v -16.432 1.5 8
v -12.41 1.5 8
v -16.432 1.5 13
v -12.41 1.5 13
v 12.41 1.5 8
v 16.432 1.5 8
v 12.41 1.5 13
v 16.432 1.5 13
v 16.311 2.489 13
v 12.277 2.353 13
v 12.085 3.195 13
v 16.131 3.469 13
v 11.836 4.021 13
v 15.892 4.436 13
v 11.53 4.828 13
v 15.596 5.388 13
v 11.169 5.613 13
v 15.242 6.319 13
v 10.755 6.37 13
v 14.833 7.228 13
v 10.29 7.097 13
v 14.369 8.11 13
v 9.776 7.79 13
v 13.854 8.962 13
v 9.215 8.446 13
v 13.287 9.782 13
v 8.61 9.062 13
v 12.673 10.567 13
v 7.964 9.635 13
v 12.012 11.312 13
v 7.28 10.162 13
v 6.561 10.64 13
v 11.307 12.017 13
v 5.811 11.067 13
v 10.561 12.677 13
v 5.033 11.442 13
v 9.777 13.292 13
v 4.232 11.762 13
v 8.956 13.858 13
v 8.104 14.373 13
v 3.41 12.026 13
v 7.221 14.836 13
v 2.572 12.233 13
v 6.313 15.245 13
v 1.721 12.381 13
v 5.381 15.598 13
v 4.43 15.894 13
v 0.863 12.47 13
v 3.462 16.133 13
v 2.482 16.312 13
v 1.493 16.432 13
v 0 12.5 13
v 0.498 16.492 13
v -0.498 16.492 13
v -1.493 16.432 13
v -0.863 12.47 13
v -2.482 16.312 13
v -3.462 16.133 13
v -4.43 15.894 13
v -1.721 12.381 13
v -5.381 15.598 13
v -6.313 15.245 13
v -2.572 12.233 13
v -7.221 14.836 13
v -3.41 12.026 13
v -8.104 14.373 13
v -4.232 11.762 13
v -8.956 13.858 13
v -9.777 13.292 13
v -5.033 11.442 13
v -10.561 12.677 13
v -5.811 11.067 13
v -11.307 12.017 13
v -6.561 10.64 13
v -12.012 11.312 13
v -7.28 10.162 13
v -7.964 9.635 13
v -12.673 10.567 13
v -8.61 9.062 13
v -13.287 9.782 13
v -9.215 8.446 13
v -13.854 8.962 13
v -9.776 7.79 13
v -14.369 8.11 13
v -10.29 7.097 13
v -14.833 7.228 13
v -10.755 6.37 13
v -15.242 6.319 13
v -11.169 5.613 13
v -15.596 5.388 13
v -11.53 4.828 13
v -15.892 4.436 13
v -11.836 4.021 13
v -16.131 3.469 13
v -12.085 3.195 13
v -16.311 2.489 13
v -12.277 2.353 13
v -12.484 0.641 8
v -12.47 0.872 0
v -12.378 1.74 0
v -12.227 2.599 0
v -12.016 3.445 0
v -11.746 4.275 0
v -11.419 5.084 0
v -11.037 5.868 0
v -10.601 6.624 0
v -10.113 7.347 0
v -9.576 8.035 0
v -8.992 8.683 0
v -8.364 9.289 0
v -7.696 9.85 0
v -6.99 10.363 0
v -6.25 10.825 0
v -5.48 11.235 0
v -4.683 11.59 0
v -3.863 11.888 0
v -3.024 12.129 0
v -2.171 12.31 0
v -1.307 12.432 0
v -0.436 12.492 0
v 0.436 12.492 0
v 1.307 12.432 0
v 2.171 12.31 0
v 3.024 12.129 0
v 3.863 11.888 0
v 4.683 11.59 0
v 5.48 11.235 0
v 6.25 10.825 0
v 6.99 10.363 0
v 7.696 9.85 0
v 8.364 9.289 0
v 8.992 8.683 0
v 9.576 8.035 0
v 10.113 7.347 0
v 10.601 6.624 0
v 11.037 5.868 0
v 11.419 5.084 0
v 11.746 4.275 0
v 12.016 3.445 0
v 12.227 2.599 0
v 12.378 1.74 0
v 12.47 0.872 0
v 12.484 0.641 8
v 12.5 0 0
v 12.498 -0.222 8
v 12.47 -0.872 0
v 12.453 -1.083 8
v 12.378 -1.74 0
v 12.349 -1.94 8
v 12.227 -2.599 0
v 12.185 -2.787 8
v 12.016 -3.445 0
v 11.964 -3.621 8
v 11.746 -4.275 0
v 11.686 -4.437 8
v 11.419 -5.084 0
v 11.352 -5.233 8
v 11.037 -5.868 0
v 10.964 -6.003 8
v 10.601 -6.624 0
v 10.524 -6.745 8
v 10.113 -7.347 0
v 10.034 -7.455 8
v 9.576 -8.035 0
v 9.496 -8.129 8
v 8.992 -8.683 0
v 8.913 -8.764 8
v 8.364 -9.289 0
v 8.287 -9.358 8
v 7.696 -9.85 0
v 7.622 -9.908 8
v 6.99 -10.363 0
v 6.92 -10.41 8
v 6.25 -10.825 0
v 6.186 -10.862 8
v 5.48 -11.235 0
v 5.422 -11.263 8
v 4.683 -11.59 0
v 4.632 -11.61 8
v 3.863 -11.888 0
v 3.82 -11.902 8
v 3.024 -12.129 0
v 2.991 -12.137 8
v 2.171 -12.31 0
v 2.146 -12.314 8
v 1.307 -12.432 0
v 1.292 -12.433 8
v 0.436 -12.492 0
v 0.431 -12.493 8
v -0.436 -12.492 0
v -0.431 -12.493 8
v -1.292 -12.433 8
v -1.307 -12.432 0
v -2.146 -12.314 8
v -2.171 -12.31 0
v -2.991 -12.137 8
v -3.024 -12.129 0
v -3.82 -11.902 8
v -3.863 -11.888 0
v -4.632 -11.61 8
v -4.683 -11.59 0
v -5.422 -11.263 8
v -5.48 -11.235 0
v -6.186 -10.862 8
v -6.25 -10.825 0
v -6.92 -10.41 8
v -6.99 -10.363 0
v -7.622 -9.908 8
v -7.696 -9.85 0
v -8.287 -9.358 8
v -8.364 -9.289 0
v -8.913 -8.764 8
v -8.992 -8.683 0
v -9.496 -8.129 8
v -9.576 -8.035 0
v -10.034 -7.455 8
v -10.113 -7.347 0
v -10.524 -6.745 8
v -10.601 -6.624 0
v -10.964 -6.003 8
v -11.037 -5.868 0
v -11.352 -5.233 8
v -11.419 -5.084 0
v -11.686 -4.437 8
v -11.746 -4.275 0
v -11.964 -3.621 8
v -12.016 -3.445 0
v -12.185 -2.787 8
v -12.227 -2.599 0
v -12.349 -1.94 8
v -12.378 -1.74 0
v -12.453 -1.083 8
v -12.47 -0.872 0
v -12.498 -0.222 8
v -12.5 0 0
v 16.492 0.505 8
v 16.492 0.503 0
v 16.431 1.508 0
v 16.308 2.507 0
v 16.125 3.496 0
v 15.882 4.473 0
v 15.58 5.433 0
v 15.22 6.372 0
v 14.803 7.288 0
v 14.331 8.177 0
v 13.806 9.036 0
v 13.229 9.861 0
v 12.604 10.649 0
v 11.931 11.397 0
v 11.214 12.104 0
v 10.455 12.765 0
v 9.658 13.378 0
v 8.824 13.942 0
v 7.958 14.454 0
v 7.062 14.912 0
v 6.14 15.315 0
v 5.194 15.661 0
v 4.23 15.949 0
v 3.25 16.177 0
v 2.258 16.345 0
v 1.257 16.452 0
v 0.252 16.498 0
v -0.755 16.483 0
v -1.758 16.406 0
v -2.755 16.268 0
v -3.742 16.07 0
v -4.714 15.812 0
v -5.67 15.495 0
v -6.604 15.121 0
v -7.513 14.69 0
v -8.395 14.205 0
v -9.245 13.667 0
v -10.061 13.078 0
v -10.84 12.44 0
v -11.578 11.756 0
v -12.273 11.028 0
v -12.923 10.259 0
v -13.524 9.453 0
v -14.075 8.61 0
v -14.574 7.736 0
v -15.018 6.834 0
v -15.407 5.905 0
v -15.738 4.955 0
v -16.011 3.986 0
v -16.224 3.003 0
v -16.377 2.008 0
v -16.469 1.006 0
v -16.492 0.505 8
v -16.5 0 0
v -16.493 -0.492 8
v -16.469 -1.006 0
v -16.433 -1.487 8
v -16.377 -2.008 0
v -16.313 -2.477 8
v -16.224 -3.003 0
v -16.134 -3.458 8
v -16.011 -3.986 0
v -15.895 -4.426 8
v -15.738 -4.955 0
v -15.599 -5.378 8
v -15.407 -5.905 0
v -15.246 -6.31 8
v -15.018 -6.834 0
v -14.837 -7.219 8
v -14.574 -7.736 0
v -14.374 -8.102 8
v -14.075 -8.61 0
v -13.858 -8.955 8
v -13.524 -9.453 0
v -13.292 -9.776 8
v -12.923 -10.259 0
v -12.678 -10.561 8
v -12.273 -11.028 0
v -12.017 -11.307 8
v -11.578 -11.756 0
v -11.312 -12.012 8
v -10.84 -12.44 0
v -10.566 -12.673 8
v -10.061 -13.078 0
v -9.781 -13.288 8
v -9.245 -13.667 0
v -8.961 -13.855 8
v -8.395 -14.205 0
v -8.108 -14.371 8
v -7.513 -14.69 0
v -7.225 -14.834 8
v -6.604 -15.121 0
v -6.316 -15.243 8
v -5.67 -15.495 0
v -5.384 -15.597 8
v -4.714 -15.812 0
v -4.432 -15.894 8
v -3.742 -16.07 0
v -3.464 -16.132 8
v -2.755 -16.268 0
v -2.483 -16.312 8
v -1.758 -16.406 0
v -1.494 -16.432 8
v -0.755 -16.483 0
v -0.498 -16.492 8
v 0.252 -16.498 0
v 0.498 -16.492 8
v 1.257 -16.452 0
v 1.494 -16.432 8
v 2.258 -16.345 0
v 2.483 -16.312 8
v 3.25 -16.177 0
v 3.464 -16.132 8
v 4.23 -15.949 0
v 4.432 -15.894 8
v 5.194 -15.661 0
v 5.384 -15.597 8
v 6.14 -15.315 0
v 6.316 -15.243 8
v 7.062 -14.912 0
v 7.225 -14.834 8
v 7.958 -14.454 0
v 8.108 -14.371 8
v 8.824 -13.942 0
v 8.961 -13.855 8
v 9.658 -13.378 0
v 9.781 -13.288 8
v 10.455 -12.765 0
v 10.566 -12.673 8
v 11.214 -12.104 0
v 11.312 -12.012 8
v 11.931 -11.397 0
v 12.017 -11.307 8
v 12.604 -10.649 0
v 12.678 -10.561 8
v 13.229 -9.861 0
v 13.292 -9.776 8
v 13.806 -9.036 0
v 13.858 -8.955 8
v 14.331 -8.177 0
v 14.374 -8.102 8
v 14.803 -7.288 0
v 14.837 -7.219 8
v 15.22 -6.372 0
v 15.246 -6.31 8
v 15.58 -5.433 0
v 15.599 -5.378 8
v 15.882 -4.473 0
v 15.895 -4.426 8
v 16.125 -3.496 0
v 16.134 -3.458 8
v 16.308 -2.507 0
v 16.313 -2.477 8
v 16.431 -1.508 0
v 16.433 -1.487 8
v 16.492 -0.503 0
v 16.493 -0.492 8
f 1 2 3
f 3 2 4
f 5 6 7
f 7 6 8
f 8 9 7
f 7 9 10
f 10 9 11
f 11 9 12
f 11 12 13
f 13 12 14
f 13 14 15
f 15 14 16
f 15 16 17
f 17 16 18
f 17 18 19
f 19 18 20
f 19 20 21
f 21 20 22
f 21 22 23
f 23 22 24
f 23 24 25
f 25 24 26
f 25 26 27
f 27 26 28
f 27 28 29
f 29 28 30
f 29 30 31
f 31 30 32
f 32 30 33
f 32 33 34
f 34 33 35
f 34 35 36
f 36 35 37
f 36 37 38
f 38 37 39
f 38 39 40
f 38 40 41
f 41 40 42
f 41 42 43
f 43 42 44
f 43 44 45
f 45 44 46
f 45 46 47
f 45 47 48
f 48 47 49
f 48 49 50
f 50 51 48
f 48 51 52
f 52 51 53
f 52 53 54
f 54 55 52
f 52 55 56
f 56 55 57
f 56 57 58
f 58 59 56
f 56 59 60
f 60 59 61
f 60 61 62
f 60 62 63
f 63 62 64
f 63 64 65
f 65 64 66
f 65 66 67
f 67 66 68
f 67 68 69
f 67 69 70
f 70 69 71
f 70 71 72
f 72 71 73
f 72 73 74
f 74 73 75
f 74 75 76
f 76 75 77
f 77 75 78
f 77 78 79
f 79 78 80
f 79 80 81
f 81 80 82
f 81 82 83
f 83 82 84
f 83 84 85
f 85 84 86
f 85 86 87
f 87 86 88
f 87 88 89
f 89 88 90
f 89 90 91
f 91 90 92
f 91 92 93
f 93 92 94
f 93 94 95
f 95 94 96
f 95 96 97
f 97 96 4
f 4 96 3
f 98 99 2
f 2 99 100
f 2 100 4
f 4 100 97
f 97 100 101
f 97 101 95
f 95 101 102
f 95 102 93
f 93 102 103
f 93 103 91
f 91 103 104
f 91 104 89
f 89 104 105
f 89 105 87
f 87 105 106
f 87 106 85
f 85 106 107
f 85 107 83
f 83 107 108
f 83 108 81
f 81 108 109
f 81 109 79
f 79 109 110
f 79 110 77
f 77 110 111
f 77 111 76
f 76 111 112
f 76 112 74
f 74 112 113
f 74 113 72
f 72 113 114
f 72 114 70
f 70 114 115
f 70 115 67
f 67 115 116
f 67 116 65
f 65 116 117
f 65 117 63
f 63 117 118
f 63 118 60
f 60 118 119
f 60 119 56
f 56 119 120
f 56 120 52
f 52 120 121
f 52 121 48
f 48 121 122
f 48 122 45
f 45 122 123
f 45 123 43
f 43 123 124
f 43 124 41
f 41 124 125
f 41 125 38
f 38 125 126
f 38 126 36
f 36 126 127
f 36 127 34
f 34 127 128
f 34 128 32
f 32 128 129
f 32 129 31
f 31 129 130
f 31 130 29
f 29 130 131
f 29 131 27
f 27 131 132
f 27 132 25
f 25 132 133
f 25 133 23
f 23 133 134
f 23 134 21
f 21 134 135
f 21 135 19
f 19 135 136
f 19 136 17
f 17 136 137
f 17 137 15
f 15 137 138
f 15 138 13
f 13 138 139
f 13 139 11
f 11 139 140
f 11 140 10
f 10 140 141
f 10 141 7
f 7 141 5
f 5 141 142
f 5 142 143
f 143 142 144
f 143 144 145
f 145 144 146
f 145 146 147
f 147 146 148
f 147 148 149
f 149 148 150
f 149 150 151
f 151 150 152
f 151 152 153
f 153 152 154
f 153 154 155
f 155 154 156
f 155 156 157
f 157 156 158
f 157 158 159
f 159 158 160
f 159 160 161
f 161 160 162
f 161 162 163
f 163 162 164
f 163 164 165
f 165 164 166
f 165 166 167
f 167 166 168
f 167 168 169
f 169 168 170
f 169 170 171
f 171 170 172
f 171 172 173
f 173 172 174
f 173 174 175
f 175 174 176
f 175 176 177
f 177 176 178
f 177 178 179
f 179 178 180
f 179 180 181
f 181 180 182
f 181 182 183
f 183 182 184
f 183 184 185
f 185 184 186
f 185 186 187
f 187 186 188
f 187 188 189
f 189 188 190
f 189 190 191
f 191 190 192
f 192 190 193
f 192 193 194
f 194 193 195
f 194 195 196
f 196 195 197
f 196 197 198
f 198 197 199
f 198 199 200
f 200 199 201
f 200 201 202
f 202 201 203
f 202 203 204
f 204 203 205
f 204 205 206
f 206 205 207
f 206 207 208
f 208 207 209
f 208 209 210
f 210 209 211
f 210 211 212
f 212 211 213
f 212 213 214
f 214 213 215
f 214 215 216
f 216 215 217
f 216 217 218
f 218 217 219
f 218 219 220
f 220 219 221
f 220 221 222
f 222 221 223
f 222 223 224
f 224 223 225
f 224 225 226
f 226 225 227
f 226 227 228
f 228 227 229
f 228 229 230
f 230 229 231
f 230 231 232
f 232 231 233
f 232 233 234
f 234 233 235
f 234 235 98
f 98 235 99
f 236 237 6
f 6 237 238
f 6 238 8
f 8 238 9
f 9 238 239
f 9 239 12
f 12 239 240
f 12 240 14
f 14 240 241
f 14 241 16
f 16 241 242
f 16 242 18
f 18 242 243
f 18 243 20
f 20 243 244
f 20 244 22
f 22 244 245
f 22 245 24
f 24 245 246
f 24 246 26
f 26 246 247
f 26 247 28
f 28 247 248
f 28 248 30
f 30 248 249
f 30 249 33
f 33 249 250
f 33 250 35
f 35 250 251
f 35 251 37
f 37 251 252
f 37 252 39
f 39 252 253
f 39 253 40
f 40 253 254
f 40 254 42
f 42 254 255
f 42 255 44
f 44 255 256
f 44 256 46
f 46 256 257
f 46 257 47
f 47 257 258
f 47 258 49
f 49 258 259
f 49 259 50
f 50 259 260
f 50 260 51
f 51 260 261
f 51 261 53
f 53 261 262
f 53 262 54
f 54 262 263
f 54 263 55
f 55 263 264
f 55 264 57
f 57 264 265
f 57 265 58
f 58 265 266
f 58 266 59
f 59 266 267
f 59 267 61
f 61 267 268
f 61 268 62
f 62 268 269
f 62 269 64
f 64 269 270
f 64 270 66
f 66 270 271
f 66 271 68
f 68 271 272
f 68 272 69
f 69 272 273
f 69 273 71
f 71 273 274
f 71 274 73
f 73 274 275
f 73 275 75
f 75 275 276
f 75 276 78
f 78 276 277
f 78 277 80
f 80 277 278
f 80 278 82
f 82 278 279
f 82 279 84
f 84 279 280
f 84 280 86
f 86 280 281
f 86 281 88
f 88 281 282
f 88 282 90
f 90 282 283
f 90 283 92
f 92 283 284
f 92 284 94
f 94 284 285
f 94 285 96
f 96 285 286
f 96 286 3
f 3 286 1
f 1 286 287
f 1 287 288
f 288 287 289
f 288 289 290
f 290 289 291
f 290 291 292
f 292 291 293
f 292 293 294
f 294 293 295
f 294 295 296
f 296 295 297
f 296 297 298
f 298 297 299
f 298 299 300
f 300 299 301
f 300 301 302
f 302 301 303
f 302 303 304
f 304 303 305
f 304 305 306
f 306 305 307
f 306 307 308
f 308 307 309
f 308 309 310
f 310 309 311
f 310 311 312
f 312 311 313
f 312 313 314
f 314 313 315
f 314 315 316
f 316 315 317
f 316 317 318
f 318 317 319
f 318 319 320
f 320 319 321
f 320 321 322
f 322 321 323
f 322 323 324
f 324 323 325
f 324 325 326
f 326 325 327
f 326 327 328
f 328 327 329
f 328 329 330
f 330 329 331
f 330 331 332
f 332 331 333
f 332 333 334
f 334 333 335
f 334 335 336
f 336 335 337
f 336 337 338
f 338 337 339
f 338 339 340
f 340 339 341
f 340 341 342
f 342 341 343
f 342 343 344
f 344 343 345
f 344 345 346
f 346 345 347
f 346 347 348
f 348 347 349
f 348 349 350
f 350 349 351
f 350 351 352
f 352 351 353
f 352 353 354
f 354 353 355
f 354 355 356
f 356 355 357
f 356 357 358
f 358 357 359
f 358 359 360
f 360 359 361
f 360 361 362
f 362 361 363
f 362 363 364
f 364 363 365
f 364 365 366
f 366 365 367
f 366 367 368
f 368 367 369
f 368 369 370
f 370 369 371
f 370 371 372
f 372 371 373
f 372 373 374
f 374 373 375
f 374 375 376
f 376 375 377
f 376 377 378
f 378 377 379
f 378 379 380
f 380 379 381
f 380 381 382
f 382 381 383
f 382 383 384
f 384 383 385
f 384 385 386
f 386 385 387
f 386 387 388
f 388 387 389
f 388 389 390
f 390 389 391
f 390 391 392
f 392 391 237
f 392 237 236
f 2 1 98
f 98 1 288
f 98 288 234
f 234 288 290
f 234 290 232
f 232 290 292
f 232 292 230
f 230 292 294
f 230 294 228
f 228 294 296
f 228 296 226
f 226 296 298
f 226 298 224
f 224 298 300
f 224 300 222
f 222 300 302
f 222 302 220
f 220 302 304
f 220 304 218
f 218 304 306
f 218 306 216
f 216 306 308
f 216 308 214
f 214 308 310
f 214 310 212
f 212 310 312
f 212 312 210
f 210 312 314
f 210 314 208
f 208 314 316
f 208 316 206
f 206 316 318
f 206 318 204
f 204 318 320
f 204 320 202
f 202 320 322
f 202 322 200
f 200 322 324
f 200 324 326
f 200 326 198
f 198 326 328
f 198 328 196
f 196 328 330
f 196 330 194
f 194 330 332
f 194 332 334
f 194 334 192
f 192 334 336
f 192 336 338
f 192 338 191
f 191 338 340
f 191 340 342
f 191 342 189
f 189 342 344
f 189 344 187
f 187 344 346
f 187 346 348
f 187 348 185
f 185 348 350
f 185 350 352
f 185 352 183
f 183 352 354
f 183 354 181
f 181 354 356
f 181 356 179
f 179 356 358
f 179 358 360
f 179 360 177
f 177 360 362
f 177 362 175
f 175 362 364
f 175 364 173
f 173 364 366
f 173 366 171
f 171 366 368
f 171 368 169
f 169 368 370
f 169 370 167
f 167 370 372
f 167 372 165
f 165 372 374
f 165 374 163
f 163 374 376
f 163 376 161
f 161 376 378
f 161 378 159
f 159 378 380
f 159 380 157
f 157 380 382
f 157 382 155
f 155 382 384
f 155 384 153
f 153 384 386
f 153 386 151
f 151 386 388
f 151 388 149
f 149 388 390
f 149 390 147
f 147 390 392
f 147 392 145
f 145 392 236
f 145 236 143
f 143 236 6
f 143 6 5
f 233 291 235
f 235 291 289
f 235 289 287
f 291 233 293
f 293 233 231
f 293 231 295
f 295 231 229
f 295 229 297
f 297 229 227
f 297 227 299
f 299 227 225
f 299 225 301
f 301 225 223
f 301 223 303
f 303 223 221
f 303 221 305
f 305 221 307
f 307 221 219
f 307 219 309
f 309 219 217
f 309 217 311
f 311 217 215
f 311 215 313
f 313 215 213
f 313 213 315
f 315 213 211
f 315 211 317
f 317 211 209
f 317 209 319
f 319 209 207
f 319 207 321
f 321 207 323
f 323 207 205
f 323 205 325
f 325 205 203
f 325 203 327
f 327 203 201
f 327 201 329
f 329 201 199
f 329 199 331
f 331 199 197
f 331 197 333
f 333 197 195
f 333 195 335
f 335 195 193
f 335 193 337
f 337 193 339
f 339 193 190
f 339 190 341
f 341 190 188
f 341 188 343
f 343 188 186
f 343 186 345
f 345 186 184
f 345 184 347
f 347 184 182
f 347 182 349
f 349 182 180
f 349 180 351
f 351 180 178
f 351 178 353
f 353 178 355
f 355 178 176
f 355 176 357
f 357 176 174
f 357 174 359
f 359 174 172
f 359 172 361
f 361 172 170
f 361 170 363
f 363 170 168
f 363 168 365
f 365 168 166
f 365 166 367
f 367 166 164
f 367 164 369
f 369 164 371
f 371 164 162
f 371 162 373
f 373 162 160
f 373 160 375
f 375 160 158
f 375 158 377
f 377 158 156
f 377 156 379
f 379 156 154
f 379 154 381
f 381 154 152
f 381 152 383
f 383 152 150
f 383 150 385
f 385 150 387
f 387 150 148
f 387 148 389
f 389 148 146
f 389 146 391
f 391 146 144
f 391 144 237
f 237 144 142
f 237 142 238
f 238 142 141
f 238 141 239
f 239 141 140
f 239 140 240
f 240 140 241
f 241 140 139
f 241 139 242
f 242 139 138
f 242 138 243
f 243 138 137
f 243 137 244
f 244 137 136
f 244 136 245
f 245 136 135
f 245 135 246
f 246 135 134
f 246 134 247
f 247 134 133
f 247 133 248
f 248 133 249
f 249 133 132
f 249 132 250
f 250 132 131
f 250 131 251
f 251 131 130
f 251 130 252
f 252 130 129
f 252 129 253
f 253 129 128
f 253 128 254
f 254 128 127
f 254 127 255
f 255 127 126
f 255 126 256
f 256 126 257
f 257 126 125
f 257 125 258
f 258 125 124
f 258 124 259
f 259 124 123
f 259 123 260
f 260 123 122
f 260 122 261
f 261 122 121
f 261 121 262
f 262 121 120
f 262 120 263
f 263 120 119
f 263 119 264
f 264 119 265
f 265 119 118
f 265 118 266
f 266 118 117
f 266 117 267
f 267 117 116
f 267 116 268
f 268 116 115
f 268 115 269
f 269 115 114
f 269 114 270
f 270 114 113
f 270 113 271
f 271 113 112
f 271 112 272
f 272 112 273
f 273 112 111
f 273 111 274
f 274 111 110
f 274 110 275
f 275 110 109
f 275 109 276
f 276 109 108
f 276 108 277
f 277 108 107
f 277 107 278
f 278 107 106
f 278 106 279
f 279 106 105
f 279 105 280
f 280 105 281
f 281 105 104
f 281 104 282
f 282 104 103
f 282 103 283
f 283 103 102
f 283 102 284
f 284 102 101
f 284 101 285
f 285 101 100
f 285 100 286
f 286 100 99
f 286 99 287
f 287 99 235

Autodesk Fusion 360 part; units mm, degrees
sketch "Sketch1" plane through (0, 0, 0) normal (0, 0, 1) x (1, 0, 0)
  circle A0 centre (0, 0) radius 16.5
  circle A1 centre (0, 0) radius 12.5
  dimension "d1" = 33
  dimension "d2" = 25
extrude "Extrude1" add sketch "Sketch1" along normal blind 8
sketch "Sketch2" plane through (0, 0, 8) normal (0, 0, 1) x (-1, 0, 0)
  circle A0 centre (0, 0) radius 12.5
  circle A1 centre (0, 0) radius 16.5
  line L0 (-0.0363, -16.5) -> (-0.0363, -1.5) construction
  line L1 (-0.0363, -1.5) -> (16.4317, -1.5) construction
  line L2 (16.4317, -1.5) -> (-16.4317, -1.5)
  line L3 (-16.4317, -1.5) -> (-13.3757, -8.3419)
  dimension "d5" = 15
  dimension "d6" = 7.4934
extrude "Extrude2" add sketch "Sketch2" along normal blind 5 contours A0 A1 L2 picked at (14.9574, -2.302)
